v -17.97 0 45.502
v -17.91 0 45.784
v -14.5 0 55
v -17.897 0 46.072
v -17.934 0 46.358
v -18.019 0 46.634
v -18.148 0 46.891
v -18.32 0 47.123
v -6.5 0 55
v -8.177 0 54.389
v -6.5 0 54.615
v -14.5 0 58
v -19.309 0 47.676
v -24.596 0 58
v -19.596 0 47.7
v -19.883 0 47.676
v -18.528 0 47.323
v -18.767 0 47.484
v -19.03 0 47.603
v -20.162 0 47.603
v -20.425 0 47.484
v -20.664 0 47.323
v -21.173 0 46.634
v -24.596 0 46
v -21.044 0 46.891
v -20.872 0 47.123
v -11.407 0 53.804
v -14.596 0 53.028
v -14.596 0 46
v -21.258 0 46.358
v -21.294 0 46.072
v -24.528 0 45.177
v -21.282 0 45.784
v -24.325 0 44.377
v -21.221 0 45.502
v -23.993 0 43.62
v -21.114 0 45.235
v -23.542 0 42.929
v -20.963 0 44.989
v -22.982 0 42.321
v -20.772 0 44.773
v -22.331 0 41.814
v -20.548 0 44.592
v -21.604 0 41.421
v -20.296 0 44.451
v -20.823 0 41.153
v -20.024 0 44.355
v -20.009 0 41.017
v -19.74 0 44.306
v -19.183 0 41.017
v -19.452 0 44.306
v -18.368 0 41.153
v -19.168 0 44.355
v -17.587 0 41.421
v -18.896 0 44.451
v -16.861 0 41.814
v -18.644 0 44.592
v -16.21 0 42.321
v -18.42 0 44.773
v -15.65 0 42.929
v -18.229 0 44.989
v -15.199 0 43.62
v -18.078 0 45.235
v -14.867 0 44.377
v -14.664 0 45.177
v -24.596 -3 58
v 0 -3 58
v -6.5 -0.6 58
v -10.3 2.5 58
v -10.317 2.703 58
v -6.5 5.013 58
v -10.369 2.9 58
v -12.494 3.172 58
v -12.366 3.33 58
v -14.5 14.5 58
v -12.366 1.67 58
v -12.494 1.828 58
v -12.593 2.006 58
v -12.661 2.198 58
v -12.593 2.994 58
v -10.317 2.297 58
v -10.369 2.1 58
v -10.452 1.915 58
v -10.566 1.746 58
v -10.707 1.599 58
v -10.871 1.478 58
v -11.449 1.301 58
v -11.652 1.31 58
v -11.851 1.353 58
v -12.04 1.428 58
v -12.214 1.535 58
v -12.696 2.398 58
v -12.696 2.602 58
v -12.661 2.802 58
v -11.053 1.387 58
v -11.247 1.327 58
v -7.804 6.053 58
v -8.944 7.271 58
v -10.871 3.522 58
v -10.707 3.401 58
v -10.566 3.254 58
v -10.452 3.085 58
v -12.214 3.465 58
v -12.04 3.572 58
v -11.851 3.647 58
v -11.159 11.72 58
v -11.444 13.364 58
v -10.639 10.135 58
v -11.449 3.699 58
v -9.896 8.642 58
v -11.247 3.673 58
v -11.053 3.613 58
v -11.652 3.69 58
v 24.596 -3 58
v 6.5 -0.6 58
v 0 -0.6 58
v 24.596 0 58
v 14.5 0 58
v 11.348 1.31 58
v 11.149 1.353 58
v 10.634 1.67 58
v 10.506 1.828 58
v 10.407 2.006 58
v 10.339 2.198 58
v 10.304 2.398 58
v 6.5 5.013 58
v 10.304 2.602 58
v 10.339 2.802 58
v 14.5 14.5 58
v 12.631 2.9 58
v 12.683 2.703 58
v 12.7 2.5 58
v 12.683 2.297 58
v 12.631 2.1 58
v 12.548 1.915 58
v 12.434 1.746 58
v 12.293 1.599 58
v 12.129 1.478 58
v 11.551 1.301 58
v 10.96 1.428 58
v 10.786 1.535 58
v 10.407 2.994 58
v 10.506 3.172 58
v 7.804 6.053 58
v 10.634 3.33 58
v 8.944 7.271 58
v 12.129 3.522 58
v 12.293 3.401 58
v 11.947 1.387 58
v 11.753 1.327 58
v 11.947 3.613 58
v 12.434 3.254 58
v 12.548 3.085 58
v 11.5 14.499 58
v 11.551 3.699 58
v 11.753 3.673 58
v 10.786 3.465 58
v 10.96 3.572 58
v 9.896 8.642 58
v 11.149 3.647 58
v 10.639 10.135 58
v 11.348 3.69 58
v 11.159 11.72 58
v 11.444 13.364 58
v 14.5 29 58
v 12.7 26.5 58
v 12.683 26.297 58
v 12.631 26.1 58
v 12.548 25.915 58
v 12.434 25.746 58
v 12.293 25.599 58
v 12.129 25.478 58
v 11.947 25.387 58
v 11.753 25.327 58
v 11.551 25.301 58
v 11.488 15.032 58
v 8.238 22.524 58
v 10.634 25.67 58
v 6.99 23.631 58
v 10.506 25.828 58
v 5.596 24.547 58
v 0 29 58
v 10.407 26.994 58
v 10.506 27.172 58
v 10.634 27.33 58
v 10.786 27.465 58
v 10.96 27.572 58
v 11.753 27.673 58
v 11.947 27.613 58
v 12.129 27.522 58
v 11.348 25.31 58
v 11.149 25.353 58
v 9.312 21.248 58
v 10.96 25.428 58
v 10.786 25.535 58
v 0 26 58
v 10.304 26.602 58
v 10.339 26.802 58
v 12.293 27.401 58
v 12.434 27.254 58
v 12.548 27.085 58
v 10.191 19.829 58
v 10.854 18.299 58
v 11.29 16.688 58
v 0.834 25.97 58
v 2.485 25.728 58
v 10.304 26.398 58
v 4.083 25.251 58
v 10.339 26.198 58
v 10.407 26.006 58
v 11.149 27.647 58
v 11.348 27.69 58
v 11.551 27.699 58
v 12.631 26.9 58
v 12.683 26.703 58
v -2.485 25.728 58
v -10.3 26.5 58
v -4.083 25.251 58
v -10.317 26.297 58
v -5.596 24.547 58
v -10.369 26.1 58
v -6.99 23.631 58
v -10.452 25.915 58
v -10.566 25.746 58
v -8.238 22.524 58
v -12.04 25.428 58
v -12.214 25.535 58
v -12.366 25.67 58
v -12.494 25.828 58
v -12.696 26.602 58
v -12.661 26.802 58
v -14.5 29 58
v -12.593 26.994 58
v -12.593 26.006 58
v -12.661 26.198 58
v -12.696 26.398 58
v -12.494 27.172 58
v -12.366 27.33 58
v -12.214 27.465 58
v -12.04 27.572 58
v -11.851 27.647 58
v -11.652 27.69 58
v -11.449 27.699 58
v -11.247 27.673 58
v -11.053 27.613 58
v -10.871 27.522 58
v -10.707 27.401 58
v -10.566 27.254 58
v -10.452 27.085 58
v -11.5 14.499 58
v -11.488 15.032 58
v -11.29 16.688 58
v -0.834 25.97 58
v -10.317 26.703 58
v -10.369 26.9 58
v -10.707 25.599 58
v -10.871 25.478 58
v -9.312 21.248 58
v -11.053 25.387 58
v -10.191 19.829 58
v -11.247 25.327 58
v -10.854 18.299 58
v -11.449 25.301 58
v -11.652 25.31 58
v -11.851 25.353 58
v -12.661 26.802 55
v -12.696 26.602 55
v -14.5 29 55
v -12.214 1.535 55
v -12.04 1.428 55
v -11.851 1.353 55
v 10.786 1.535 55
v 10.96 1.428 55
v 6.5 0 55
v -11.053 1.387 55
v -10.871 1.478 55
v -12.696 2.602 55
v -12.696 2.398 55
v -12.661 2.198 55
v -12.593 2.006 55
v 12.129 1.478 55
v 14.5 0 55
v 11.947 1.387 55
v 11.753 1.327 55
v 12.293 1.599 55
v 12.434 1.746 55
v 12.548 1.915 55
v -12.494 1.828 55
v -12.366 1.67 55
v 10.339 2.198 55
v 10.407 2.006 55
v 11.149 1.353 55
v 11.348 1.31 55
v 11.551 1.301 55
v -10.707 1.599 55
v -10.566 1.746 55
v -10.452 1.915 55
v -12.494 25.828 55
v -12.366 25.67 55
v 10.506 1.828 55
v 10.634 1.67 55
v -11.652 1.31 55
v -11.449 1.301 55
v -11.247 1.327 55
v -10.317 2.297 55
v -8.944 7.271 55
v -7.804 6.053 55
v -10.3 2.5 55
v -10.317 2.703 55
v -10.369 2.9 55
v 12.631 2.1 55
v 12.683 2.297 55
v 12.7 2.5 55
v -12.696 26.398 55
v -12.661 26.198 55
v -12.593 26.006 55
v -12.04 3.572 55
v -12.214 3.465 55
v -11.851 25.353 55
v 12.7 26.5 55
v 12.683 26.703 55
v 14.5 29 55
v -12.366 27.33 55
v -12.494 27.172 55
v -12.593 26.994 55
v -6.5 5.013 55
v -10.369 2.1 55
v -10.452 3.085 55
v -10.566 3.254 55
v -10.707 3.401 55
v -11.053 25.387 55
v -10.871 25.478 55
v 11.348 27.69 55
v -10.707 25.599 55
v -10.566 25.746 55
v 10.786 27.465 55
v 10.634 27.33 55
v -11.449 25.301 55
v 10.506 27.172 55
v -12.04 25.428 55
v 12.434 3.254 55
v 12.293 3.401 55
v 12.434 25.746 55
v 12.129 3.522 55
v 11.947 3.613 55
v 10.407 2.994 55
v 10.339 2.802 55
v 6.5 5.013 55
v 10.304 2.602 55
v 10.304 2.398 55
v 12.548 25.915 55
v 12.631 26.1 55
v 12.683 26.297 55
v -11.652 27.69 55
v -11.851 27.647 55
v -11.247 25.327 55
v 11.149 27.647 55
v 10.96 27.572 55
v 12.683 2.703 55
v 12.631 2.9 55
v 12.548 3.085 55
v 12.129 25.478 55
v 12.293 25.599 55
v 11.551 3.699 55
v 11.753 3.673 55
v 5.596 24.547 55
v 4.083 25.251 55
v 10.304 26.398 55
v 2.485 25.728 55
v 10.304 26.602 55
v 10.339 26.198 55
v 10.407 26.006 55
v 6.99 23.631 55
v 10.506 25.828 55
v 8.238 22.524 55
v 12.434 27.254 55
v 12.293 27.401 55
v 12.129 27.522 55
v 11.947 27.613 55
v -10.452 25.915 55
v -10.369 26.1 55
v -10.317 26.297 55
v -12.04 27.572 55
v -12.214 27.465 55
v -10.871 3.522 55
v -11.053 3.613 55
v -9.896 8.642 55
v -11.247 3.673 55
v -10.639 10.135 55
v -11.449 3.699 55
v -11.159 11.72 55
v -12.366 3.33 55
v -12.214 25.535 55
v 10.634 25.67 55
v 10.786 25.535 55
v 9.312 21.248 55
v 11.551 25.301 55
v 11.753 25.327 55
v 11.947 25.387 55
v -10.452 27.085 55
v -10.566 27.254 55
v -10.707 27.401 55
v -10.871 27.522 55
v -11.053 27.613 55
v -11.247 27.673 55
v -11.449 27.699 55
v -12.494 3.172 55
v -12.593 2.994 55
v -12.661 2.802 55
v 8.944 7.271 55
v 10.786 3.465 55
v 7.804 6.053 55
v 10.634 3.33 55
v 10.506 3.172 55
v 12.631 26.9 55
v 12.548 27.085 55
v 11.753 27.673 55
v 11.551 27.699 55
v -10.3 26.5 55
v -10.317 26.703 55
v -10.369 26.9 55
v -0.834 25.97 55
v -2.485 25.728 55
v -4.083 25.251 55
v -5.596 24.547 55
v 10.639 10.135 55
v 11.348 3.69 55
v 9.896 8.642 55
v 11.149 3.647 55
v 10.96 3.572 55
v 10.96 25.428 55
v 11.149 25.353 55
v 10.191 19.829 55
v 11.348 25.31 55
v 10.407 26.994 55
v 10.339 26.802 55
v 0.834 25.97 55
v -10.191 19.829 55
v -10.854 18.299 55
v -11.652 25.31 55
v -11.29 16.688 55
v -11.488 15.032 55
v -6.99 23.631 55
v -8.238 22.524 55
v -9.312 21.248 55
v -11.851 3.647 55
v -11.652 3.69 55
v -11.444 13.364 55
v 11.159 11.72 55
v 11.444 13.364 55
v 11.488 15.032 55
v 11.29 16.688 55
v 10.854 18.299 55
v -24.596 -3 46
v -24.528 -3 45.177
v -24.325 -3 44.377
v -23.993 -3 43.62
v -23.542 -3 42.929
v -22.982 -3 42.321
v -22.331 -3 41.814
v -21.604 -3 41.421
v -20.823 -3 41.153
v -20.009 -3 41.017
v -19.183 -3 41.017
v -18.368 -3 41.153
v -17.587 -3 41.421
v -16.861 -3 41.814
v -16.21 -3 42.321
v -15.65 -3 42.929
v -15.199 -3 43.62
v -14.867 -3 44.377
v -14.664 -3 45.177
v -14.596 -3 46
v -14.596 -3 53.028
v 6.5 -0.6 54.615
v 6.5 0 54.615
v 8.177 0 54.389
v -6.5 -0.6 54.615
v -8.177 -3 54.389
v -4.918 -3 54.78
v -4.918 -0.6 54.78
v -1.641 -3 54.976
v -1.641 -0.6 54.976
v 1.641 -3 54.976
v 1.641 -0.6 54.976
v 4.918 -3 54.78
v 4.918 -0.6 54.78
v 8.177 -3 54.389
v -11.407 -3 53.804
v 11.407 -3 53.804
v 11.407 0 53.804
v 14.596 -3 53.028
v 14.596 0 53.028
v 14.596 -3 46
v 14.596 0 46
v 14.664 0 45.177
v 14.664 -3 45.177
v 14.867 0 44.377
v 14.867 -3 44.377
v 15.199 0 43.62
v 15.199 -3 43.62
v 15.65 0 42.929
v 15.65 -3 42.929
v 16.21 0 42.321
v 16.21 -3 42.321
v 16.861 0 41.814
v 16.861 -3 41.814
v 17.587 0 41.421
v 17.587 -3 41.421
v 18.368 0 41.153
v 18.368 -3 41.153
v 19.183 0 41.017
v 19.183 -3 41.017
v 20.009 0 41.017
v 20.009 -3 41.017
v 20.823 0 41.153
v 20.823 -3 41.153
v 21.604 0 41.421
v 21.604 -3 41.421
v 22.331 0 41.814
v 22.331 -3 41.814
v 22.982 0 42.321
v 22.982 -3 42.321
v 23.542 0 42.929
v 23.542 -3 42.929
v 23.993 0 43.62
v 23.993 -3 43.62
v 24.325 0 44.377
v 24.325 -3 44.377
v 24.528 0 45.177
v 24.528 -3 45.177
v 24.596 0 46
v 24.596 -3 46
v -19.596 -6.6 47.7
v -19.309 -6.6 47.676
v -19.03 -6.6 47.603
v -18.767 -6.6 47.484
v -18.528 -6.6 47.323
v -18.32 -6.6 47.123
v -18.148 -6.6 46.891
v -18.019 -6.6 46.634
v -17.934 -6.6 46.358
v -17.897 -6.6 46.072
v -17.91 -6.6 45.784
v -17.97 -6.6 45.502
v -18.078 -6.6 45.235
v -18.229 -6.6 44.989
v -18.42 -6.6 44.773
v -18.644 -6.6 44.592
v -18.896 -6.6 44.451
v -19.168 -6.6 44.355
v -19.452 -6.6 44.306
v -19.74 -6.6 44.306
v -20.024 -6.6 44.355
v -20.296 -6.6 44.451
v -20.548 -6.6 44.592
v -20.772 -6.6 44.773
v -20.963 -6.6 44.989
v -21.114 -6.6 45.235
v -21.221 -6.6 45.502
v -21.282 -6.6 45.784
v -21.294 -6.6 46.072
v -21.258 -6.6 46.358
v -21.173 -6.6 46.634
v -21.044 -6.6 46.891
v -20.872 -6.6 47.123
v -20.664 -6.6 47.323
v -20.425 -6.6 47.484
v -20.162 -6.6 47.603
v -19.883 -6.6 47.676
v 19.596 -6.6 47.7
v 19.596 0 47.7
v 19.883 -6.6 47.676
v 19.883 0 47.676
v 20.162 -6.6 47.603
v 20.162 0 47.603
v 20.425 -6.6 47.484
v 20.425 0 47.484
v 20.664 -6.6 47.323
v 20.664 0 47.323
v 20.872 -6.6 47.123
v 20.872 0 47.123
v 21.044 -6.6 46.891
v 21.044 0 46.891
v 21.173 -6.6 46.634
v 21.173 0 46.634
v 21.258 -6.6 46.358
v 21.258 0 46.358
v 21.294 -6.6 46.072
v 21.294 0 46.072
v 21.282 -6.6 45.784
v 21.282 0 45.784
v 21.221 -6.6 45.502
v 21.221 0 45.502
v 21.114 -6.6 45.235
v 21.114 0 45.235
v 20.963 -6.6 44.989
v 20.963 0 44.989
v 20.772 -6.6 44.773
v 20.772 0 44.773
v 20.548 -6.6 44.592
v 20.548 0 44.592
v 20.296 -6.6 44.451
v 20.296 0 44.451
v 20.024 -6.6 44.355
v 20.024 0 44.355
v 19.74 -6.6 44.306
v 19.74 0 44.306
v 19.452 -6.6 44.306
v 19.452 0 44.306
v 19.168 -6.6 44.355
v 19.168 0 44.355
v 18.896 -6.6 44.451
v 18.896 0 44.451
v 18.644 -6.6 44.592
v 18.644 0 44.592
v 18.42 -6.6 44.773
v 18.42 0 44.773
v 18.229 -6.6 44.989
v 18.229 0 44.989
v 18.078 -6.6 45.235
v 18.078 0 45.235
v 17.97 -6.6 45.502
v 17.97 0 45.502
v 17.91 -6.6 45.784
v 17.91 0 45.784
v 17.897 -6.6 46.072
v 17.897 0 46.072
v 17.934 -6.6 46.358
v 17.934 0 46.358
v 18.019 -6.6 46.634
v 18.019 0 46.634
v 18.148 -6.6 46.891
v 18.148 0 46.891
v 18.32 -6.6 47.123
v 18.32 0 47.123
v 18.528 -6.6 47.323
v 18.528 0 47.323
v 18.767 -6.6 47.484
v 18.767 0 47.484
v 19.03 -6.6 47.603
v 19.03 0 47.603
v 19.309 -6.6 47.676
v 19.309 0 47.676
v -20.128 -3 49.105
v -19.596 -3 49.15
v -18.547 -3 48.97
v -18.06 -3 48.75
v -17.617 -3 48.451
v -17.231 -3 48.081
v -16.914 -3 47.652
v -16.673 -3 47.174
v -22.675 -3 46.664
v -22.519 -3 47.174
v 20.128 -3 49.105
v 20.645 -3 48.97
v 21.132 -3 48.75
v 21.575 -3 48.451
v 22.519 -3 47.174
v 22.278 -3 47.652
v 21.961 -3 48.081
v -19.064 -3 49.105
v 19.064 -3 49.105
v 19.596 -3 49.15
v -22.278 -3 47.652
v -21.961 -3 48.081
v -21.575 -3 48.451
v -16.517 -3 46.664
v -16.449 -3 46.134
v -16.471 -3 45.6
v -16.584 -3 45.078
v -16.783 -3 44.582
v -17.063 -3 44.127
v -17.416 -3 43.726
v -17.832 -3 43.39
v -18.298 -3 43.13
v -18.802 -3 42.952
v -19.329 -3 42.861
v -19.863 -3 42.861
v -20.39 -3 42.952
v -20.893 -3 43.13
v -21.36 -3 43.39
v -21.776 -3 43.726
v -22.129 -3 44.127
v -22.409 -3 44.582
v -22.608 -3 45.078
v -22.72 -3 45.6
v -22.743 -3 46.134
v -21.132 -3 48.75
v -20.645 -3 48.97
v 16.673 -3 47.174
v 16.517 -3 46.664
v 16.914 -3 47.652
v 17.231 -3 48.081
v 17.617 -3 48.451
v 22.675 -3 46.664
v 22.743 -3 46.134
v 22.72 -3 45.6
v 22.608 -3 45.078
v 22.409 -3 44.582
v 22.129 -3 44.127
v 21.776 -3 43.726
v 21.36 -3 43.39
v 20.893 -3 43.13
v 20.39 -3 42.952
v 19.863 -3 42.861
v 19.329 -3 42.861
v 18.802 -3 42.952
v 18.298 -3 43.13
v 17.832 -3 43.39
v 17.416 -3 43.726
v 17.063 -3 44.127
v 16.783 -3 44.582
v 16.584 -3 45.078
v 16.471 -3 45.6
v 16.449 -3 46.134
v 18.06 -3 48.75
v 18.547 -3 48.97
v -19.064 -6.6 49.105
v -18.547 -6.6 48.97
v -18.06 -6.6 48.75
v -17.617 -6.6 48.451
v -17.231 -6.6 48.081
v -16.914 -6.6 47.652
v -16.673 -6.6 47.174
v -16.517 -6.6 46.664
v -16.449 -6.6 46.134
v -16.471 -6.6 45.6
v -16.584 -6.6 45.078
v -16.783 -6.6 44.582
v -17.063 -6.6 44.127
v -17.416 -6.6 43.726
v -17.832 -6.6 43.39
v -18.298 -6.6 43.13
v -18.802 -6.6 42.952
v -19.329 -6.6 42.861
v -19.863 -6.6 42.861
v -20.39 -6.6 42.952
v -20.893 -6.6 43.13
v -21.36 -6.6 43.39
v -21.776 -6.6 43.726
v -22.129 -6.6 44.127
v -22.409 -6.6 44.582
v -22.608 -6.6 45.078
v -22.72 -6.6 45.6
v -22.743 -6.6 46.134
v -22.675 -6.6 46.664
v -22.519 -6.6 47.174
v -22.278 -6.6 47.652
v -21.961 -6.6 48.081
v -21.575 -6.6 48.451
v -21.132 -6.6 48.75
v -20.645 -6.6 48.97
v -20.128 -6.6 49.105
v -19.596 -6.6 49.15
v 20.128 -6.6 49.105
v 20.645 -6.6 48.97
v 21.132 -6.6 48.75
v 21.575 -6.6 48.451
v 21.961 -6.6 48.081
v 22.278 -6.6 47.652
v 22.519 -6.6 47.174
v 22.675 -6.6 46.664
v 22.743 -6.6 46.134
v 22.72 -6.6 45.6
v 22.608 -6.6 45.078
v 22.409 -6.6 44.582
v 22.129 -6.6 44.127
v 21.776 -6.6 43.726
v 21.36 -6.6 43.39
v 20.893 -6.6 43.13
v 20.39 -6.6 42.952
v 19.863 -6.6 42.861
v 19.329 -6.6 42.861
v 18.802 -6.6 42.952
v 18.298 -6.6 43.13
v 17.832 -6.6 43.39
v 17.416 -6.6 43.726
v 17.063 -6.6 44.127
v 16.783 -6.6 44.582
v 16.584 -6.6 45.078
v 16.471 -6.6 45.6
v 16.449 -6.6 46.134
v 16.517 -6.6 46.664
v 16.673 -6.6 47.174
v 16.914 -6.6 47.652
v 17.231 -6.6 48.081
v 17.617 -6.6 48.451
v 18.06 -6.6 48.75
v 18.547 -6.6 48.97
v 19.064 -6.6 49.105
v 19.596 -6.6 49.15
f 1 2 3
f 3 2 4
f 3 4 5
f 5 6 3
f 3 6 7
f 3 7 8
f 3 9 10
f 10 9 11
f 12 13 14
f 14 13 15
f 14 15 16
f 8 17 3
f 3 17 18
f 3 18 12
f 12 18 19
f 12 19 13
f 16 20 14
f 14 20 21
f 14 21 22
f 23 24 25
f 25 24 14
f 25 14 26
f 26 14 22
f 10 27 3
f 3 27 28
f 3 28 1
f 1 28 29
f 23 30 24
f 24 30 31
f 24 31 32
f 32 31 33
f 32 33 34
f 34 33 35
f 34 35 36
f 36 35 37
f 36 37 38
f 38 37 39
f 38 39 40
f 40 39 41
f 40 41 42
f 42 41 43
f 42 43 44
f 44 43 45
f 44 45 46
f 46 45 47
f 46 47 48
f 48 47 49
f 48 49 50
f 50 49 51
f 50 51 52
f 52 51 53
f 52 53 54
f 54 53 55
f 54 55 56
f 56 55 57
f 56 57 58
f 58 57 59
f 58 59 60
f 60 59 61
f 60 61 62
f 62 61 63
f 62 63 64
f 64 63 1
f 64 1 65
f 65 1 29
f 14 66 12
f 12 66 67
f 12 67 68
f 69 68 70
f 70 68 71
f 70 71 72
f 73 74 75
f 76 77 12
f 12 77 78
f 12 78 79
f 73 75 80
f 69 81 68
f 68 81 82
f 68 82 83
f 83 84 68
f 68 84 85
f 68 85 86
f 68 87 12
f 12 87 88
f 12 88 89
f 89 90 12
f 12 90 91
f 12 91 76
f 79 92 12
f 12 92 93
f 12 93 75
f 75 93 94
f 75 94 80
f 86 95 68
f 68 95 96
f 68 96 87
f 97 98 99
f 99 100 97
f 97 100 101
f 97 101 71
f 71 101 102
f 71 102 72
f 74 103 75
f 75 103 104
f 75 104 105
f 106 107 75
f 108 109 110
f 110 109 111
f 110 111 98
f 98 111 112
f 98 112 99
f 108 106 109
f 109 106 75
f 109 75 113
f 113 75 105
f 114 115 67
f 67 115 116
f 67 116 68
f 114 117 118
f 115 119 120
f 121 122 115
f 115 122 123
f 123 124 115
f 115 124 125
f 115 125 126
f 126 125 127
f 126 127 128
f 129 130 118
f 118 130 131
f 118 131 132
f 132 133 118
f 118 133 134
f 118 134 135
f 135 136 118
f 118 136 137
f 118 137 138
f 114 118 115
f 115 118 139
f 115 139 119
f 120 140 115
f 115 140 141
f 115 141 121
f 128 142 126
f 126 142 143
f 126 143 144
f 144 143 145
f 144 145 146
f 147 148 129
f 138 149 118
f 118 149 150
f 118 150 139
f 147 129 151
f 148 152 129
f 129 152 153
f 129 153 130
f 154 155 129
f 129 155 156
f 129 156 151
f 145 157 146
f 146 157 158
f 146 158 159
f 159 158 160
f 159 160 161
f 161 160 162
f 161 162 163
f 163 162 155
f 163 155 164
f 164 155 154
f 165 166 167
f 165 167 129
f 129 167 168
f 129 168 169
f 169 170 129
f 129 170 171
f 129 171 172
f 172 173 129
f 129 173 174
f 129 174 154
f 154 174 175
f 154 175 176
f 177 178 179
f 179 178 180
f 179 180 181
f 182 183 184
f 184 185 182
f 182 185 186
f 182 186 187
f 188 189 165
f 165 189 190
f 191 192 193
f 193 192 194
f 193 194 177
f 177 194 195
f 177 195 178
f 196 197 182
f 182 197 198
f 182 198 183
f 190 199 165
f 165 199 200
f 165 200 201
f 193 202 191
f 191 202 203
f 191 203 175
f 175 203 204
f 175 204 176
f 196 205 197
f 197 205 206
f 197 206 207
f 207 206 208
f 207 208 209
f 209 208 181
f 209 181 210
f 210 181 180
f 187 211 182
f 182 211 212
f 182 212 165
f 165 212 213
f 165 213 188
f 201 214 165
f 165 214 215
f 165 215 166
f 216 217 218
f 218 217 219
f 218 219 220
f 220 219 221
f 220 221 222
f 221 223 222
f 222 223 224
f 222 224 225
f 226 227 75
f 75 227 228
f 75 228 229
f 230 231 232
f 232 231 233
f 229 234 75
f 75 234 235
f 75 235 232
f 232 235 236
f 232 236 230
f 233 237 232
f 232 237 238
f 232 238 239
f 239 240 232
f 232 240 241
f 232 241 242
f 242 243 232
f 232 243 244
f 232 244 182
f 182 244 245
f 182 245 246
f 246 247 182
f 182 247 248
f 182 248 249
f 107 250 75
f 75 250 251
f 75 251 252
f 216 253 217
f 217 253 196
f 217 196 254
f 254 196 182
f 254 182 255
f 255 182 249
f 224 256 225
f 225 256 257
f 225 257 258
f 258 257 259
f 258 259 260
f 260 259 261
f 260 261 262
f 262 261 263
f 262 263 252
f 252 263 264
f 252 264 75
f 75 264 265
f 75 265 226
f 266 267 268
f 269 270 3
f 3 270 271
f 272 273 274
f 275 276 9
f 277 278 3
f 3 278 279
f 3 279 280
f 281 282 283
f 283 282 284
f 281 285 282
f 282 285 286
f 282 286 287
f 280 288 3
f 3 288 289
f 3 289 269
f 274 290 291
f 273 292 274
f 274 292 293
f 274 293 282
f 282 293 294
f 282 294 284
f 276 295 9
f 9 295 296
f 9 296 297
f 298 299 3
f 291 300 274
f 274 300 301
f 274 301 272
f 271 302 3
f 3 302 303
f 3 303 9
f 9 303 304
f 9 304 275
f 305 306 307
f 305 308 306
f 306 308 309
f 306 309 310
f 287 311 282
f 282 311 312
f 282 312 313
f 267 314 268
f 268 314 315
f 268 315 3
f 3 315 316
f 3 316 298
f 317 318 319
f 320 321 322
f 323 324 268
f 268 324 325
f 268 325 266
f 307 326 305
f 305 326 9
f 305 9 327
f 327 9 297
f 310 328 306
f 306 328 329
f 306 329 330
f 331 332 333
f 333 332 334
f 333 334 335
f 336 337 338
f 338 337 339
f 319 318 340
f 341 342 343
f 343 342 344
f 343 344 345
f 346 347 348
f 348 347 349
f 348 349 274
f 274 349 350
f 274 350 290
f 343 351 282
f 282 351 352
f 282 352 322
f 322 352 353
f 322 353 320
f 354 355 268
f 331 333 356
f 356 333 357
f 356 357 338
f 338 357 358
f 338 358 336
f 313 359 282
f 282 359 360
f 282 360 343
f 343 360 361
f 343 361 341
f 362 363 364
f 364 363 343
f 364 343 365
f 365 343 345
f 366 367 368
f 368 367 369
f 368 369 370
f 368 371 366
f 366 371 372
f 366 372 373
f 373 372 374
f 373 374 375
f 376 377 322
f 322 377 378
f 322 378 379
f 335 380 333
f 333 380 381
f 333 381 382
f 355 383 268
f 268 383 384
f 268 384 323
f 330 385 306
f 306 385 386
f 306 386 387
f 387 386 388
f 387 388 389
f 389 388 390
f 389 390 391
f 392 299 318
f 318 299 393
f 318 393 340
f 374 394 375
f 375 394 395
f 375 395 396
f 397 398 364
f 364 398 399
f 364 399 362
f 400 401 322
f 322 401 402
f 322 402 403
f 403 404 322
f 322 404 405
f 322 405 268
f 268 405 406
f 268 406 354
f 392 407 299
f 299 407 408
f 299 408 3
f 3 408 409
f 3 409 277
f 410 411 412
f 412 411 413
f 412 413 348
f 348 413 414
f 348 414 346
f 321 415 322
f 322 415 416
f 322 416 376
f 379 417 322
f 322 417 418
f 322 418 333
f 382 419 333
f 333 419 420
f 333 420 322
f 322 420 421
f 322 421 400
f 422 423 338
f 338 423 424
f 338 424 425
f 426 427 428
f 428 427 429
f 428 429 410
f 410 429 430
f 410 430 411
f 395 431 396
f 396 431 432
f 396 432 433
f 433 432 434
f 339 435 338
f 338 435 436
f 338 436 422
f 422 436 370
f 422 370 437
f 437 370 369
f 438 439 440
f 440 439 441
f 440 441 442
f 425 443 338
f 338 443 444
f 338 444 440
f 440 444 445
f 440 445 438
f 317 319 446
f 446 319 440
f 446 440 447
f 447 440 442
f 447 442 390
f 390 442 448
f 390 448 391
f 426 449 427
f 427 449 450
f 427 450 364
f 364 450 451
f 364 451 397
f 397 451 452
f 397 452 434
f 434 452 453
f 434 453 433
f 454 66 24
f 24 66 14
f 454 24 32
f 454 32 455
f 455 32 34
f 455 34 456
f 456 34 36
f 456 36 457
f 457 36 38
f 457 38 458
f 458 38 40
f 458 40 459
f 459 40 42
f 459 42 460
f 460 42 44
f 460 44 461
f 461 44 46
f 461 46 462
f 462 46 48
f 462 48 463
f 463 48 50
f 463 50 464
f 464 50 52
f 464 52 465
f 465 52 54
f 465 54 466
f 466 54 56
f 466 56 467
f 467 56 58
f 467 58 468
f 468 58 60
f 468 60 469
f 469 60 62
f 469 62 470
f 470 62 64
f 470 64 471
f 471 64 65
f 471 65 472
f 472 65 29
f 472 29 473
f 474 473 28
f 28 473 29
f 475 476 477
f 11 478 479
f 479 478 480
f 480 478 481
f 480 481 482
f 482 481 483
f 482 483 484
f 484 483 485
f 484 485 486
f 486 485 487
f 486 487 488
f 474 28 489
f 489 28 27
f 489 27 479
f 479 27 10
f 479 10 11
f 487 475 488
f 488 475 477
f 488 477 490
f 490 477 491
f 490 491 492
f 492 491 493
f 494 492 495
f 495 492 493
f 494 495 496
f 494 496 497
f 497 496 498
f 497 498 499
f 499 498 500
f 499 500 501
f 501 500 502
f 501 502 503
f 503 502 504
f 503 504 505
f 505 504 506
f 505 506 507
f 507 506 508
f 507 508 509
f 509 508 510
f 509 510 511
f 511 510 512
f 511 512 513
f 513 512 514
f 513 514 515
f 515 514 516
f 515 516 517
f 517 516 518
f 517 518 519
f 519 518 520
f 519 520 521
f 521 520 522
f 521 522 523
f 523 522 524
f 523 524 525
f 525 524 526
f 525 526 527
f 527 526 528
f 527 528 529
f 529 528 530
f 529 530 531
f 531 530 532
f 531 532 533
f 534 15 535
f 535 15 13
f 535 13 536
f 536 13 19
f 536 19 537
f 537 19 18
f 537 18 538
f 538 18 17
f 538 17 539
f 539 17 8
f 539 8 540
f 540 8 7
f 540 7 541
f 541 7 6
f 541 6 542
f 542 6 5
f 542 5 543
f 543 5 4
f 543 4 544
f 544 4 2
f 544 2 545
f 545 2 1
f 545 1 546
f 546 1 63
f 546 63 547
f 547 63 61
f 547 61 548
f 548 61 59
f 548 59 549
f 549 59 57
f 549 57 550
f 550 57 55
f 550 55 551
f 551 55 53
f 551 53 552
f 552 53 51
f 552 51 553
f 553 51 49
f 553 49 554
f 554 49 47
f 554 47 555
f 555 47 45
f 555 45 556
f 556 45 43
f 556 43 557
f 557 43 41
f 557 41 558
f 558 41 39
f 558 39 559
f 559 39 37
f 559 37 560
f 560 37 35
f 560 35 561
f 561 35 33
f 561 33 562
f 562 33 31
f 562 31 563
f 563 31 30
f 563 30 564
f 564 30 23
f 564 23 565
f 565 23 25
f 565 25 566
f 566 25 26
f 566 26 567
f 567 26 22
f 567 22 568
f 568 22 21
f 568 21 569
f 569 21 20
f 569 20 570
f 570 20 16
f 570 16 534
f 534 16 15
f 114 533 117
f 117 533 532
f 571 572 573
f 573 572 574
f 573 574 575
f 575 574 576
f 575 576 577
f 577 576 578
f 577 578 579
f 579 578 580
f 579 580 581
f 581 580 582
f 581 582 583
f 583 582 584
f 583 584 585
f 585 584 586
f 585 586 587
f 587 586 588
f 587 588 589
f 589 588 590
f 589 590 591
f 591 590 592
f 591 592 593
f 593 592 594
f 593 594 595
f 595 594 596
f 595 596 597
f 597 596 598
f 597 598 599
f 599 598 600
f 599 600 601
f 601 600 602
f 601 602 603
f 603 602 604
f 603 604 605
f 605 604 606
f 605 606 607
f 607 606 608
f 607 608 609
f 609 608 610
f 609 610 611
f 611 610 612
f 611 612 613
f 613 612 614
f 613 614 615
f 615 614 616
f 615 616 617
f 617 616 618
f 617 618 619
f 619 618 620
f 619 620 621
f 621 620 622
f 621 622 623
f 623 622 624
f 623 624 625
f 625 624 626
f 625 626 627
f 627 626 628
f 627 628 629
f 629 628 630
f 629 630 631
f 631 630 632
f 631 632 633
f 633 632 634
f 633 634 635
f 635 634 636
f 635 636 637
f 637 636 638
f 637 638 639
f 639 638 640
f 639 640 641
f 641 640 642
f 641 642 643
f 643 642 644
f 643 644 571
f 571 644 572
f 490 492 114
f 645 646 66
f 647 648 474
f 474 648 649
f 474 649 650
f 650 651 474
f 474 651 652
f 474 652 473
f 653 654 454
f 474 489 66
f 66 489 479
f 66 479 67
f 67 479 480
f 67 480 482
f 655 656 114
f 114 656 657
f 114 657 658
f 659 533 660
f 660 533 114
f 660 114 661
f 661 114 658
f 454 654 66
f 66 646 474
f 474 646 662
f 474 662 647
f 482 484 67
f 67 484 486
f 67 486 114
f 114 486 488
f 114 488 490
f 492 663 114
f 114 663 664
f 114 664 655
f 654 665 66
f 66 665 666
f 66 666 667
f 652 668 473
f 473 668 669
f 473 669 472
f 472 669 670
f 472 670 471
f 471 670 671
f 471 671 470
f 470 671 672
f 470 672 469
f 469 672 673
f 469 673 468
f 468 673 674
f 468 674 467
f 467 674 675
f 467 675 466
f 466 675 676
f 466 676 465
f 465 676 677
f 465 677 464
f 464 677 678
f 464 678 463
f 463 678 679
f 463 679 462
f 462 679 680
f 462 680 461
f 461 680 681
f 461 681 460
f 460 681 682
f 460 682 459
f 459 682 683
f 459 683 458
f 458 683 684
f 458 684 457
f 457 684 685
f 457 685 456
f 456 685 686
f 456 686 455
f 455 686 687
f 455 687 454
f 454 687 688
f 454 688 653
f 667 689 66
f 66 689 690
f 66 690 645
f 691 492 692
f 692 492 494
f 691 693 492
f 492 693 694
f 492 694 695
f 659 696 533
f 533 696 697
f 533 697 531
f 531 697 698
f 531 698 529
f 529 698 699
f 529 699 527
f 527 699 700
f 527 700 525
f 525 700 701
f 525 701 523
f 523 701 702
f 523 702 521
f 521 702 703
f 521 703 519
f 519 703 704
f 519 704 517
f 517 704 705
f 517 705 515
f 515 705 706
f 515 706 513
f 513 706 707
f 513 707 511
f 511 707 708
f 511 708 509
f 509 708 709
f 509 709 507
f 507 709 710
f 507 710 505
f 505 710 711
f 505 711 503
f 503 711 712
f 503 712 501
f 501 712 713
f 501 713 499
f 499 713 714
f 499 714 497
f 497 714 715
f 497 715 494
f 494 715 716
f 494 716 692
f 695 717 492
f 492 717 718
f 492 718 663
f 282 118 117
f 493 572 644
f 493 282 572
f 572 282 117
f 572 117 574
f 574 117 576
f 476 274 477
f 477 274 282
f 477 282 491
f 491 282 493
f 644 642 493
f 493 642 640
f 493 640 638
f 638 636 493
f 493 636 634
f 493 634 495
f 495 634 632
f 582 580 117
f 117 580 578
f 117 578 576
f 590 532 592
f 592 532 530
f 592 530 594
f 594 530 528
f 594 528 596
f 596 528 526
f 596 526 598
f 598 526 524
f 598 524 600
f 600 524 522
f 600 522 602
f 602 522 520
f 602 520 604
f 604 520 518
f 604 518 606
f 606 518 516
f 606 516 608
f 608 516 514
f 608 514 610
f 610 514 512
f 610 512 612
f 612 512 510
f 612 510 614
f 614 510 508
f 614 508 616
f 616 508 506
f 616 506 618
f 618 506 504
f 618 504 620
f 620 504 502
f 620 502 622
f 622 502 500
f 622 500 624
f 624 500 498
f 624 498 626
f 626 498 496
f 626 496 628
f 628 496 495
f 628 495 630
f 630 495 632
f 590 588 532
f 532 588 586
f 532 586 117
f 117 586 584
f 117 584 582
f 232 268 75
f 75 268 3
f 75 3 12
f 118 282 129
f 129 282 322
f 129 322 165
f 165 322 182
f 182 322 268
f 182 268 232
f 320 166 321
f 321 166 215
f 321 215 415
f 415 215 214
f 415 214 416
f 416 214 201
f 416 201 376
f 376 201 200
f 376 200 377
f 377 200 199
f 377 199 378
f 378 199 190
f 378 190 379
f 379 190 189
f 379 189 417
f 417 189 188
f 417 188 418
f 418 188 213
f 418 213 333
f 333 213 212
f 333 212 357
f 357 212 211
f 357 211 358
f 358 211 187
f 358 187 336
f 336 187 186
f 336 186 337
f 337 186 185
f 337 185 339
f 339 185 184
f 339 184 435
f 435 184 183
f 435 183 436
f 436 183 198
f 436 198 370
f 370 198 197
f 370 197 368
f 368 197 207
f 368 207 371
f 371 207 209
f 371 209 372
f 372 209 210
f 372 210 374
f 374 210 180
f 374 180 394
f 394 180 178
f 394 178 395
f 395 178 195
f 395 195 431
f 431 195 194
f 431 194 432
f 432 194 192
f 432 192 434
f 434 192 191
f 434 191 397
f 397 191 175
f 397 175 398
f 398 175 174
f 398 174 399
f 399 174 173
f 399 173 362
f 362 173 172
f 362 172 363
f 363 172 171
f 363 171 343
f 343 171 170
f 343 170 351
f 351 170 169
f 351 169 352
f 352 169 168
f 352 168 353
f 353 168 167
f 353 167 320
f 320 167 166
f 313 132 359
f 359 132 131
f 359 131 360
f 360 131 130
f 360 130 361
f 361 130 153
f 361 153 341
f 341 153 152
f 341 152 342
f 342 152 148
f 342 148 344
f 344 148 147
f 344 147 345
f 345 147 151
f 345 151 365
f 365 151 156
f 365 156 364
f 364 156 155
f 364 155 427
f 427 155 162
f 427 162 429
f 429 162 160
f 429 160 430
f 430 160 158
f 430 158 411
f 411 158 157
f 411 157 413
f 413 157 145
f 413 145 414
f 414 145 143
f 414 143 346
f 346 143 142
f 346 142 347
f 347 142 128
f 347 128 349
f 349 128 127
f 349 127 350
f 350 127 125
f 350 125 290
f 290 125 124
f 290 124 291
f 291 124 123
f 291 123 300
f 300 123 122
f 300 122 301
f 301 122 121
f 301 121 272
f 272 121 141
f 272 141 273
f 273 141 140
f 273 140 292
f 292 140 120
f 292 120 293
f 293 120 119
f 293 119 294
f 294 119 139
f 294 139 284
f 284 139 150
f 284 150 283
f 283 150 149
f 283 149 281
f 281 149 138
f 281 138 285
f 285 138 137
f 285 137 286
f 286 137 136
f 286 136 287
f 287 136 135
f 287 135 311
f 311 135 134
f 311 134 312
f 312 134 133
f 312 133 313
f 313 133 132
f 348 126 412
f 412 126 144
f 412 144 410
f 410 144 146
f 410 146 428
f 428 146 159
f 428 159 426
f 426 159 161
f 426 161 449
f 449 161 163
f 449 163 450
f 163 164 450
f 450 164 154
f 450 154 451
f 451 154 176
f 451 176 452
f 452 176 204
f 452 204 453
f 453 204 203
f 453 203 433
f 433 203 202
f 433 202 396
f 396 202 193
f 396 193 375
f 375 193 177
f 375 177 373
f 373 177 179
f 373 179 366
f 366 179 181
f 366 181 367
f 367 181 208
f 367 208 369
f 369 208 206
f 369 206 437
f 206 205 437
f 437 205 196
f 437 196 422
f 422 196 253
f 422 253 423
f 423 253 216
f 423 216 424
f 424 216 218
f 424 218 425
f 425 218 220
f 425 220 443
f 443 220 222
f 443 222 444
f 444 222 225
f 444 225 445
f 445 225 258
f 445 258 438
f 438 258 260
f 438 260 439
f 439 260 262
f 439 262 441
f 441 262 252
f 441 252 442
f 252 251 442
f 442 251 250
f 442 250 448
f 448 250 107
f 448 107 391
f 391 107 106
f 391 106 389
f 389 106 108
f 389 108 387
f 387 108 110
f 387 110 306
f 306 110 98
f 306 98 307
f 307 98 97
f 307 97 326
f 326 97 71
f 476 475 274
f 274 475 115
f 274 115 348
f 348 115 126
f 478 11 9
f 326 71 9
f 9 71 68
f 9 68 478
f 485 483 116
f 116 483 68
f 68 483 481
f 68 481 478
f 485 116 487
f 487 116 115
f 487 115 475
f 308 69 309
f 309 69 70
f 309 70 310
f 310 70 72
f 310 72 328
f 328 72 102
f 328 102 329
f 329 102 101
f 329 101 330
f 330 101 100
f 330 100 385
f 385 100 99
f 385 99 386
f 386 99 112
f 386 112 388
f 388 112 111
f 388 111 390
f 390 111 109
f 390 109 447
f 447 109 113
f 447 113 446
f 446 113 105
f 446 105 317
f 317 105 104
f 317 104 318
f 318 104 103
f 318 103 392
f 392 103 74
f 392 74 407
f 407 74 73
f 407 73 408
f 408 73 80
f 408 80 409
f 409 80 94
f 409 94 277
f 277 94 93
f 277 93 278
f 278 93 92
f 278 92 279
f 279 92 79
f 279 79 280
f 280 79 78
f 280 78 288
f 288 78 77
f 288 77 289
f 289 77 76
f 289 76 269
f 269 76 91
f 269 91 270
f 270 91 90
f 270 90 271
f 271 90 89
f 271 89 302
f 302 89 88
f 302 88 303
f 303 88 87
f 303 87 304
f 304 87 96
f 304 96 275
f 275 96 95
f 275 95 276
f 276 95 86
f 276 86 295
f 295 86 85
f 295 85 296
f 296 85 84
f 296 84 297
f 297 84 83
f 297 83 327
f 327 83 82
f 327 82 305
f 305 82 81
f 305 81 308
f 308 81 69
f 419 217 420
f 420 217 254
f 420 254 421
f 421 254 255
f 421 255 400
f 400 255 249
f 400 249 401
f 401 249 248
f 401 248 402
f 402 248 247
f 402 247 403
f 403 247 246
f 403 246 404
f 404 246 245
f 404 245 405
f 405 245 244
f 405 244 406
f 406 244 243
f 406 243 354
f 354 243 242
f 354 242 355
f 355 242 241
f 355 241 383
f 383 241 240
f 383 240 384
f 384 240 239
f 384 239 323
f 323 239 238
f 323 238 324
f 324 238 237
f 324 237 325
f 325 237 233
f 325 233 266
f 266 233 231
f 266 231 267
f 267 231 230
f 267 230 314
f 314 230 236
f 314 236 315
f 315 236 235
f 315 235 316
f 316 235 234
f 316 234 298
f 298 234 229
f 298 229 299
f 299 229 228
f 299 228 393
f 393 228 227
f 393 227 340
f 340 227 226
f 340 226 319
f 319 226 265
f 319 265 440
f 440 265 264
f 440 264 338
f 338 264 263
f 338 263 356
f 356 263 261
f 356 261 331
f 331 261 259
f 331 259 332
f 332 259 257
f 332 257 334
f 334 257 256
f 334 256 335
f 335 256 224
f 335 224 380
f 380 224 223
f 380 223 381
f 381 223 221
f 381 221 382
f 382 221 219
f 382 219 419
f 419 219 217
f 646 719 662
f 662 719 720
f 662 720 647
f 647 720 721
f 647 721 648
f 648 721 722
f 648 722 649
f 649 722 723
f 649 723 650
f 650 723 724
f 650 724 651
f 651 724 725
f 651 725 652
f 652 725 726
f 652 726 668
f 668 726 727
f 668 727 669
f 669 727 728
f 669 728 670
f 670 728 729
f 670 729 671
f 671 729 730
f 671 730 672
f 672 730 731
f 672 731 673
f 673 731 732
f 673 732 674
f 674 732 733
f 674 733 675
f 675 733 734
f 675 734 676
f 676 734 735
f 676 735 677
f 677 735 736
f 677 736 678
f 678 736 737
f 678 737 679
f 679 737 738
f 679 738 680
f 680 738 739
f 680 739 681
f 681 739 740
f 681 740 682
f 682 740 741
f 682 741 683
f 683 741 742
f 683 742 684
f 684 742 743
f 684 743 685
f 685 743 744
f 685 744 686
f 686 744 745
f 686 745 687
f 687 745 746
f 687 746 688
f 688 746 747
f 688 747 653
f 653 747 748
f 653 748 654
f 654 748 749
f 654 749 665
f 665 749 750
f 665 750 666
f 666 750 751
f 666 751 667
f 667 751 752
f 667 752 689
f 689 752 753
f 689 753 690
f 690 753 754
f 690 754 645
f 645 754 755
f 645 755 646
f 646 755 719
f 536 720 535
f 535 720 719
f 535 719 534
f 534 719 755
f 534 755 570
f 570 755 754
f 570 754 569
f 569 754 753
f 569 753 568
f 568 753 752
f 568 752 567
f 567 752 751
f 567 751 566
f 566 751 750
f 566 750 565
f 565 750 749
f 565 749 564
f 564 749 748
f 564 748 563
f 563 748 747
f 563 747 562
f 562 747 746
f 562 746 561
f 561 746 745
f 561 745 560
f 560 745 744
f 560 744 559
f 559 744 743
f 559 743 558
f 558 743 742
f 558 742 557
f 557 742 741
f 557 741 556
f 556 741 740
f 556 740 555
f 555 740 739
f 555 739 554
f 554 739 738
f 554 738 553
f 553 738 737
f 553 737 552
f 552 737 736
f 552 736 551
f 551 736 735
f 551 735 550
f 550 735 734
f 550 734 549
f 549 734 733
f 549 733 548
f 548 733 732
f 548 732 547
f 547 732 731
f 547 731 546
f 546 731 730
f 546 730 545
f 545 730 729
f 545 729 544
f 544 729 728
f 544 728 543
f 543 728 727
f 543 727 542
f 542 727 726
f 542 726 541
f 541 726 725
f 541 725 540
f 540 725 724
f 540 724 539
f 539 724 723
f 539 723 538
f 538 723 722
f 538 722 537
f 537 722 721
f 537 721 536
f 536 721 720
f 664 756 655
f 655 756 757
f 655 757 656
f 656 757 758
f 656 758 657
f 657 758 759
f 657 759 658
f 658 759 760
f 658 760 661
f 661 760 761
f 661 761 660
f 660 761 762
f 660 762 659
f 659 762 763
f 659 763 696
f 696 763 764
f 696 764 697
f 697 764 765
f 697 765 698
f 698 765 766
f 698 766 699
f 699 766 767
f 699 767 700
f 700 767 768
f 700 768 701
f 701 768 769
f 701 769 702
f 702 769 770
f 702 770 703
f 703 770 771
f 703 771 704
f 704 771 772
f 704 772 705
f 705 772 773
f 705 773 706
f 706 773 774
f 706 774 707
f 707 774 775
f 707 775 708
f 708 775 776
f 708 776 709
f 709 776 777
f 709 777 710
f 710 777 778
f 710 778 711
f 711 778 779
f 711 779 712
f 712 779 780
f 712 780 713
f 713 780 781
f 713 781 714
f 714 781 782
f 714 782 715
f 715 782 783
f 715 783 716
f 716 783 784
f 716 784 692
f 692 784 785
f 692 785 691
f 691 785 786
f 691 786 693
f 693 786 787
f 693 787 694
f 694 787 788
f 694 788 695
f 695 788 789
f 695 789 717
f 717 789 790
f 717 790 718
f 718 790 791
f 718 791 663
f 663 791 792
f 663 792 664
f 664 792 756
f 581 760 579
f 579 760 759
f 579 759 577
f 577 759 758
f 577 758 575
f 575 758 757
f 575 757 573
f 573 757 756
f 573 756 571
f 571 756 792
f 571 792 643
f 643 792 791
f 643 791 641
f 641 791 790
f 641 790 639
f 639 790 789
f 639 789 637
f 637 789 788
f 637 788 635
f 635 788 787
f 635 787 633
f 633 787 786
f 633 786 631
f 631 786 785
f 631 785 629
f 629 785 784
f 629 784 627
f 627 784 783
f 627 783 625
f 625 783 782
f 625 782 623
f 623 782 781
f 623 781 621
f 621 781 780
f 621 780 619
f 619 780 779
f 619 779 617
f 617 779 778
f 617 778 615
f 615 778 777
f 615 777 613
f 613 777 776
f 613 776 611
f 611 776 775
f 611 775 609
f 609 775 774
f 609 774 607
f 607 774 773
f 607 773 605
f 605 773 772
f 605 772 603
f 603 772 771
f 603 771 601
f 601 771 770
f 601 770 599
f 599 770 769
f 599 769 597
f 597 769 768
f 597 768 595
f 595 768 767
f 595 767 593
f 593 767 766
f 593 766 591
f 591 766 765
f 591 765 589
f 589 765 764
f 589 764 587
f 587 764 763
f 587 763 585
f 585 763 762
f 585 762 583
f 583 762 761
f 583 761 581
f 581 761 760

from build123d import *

# Parameters (mm, degrees)
SKETCH1_R           = 1.7
BOSS_EXTRUDE2_DEPTH = 3
SKETCH1_7_W         = 29
SKETCH1_7_H         = 3
BOSS_EXTRUDE4_DEPTH = 29
CUT_EXTRUDE1_REACH  = 43.653
SKETCH2_R           = 1.2
BOSS_EXTRUDE3_START = -3
SKETCH1_5_R         = 3.15
SKETCH1_5_R_2       = 1.7
BOSS_EXTRUDE3_DEPTH = 3.6


with BuildPart() as part:
    # Sketch1 → Boss-Extrude2 (new body)
    with BuildSketch(Plane(origin=(0, 0, 0), x_dir=(1, 0, 0), z_dir=(0, 1, 0))):
        with BuildLine():
            ThreePointArc((24.595917942, -46), (19.595917942, -41), (14.595917942, -46))
            Line((14.595917942, -46), (14.595917942, -53.027909439))
            ThreePointArc((14.595917942, -53.027909439), (0, -55), (-14.595917942, -53.027909439))
            Line((-14.595917942, -53.027909439), (-14.595917942, -46))
            ThreePointArc((-14.595917942, -46), (-19.595917942, -41), (-24.595917942, -46))
            Line((-24.595917942, -46), (-24.595917942, -58))
            Line((-24.595917942, -58), (24.595917942, -58))
            Line((24.595917942, -58), (24.595917942, -46))
        make_face()
        with Locations(Location((-19.595917942, -46, 0), (0, 0, 270))):
            Circle(SKETCH1_R, mode=Mode.SUBTRACT)
        with Locations(Location((19.595917942, -46, 0), (0, 0, 270))):
            Circle(SKETCH1_R, mode=Mode.SUBTRACT)
    extrude(amount=-BOSS_EXTRUDE2_DEPTH)

    # Sketch1<7> → Boss-Extrude4 (add)
    with BuildSketch(Plane(origin=(0, 0, 0), x_dir=(1, 0, 0), z_dir=(0, 1, 0))):
        with Locations((0, -56.5)):
            Rectangle(SKETCH1_7_W, SKETCH1_7_H)
    extrude(amount=BOSS_EXTRUDE4_DEPTH)

    # Sketch2 → Cut-Extrude1 (cut, up to next)
    with BuildSketch(Plane.XY.offset(58), mode=Mode.PRIVATE) as cut_extrude1_sk1:
        with BuildLine():
            Line((-6.5, 5.013167019), (-6.5, -0.6))
            Line((-6.5, -0.6), (6.5, -0.6))
            Line((6.5, -0.6), (6.5, 5.013167019))
            ThreePointArc((6.5, 5.013167019), (0, 26), (-6.5, 5.013167019))
        make_face()
    cut_extrude1_tool1 = extrude(cut_extrude1_sk1.sketch, amount=-CUT_EXTRUDE1_REACH, mode=Mode.PRIVATE) & part.part
    # Sketch2 → Cut-Extrude1 (cut, up to next)
    with BuildSketch(Plane.XY.offset(58), mode=Mode.PRIVATE) as cut_extrude1_sk2:
        with Locations((-11.5, 2.5)):
            Circle(SKETCH2_R)
    cut_extrude1_tool2 = extrude(cut_extrude1_sk2.sketch, amount=-CUT_EXTRUDE1_REACH, mode=Mode.PRIVATE) & part.part
    # Sketch2 → Cut-Extrude1 (cut, up to next)
    with BuildSketch(Plane.XY.offset(58), mode=Mode.PRIVATE) as cut_extrude1_sk3:
        with Locations((-11.5, 26.5)):
            Circle(SKETCH2_R)
    cut_extrude1_tool3 = extrude(cut_extrude1_sk3.sketch, amount=-CUT_EXTRUDE1_REACH, mode=Mode.PRIVATE) & part.part
    # Sketch2 → Cut-Extrude1 (cut, up to next)
    with BuildSketch(Plane.XY.offset(58), mode=Mode.PRIVATE) as cut_extrude1_sk4:
        with Locations((11.5, 2.5)):
            Circle(SKETCH2_R)
    cut_extrude1_tool4 = extrude(cut_extrude1_sk4.sketch, amount=-CUT_EXTRUDE1_REACH, mode=Mode.PRIVATE) & part.part
    # Sketch2 → Cut-Extrude1 (cut, up to next)
    with BuildSketch(Plane.XY.offset(58), mode=Mode.PRIVATE) as cut_extrude1_sk5:
        with Locations((11.5, 26.5)):
            Circle(SKETCH2_R)
    cut_extrude1_tool5 = extrude(cut_extrude1_sk5.sketch, amount=-CUT_EXTRUDE1_REACH, mode=Mode.PRIVATE) & part.part
    add(cut_extrude1_tool1.solids().sort_by_distance((0, 12.98305, 58))[0], mode=Mode.SUBTRACT)
    add(cut_extrude1_tool2.solids().sort_by_distance((-11.5, 2.5, 58))[0], mode=Mode.SUBTRACT)
    add(cut_extrude1_tool3.solids().sort_by_distance((-11.5, 26.5, 58))[0], mode=Mode.SUBTRACT)
    add(cut_extrude1_tool4.solids().sort_by_distance((11.5, 2.5, 58))[0], mode=Mode.SUBTRACT)
    add(cut_extrude1_tool5.solids().sort_by_distance((11.5, 26.5, 58))[0], mode=Mode.SUBTRACT)

    # Sketch1<5> → Boss-Extrude3 (add)
    with BuildSketch(Plane(origin=(0, 0, 0), x_dir=(1, 0, 0), z_dir=(0, 1, 0)).offset(BOSS_EXTRUDE3_START)):
        with Locations(Location((-19.595917942, -46, 0), (0, 0, 270))):
            Circle(SKETCH1_5_R)
        with Locations(Location((-19.595917942, -46, 0), (0, 0, 270))):
            Circle(SKETCH1_5_R_2, mode=Mode.SUBTRACT)
        with Locations(Location((19.595917942, -46, 0), (0, 0, 270))):
            Circle(SKETCH1_5_R)
        with Locations(Location((19.595917942, -46, 0), (0, 0, 270))):
            Circle(SKETCH1_5_R_2, mode=Mode.SUBTRACT)
    extrude(amount=-BOSS_EXTRUDE3_DEPTH)


solid = part.part
